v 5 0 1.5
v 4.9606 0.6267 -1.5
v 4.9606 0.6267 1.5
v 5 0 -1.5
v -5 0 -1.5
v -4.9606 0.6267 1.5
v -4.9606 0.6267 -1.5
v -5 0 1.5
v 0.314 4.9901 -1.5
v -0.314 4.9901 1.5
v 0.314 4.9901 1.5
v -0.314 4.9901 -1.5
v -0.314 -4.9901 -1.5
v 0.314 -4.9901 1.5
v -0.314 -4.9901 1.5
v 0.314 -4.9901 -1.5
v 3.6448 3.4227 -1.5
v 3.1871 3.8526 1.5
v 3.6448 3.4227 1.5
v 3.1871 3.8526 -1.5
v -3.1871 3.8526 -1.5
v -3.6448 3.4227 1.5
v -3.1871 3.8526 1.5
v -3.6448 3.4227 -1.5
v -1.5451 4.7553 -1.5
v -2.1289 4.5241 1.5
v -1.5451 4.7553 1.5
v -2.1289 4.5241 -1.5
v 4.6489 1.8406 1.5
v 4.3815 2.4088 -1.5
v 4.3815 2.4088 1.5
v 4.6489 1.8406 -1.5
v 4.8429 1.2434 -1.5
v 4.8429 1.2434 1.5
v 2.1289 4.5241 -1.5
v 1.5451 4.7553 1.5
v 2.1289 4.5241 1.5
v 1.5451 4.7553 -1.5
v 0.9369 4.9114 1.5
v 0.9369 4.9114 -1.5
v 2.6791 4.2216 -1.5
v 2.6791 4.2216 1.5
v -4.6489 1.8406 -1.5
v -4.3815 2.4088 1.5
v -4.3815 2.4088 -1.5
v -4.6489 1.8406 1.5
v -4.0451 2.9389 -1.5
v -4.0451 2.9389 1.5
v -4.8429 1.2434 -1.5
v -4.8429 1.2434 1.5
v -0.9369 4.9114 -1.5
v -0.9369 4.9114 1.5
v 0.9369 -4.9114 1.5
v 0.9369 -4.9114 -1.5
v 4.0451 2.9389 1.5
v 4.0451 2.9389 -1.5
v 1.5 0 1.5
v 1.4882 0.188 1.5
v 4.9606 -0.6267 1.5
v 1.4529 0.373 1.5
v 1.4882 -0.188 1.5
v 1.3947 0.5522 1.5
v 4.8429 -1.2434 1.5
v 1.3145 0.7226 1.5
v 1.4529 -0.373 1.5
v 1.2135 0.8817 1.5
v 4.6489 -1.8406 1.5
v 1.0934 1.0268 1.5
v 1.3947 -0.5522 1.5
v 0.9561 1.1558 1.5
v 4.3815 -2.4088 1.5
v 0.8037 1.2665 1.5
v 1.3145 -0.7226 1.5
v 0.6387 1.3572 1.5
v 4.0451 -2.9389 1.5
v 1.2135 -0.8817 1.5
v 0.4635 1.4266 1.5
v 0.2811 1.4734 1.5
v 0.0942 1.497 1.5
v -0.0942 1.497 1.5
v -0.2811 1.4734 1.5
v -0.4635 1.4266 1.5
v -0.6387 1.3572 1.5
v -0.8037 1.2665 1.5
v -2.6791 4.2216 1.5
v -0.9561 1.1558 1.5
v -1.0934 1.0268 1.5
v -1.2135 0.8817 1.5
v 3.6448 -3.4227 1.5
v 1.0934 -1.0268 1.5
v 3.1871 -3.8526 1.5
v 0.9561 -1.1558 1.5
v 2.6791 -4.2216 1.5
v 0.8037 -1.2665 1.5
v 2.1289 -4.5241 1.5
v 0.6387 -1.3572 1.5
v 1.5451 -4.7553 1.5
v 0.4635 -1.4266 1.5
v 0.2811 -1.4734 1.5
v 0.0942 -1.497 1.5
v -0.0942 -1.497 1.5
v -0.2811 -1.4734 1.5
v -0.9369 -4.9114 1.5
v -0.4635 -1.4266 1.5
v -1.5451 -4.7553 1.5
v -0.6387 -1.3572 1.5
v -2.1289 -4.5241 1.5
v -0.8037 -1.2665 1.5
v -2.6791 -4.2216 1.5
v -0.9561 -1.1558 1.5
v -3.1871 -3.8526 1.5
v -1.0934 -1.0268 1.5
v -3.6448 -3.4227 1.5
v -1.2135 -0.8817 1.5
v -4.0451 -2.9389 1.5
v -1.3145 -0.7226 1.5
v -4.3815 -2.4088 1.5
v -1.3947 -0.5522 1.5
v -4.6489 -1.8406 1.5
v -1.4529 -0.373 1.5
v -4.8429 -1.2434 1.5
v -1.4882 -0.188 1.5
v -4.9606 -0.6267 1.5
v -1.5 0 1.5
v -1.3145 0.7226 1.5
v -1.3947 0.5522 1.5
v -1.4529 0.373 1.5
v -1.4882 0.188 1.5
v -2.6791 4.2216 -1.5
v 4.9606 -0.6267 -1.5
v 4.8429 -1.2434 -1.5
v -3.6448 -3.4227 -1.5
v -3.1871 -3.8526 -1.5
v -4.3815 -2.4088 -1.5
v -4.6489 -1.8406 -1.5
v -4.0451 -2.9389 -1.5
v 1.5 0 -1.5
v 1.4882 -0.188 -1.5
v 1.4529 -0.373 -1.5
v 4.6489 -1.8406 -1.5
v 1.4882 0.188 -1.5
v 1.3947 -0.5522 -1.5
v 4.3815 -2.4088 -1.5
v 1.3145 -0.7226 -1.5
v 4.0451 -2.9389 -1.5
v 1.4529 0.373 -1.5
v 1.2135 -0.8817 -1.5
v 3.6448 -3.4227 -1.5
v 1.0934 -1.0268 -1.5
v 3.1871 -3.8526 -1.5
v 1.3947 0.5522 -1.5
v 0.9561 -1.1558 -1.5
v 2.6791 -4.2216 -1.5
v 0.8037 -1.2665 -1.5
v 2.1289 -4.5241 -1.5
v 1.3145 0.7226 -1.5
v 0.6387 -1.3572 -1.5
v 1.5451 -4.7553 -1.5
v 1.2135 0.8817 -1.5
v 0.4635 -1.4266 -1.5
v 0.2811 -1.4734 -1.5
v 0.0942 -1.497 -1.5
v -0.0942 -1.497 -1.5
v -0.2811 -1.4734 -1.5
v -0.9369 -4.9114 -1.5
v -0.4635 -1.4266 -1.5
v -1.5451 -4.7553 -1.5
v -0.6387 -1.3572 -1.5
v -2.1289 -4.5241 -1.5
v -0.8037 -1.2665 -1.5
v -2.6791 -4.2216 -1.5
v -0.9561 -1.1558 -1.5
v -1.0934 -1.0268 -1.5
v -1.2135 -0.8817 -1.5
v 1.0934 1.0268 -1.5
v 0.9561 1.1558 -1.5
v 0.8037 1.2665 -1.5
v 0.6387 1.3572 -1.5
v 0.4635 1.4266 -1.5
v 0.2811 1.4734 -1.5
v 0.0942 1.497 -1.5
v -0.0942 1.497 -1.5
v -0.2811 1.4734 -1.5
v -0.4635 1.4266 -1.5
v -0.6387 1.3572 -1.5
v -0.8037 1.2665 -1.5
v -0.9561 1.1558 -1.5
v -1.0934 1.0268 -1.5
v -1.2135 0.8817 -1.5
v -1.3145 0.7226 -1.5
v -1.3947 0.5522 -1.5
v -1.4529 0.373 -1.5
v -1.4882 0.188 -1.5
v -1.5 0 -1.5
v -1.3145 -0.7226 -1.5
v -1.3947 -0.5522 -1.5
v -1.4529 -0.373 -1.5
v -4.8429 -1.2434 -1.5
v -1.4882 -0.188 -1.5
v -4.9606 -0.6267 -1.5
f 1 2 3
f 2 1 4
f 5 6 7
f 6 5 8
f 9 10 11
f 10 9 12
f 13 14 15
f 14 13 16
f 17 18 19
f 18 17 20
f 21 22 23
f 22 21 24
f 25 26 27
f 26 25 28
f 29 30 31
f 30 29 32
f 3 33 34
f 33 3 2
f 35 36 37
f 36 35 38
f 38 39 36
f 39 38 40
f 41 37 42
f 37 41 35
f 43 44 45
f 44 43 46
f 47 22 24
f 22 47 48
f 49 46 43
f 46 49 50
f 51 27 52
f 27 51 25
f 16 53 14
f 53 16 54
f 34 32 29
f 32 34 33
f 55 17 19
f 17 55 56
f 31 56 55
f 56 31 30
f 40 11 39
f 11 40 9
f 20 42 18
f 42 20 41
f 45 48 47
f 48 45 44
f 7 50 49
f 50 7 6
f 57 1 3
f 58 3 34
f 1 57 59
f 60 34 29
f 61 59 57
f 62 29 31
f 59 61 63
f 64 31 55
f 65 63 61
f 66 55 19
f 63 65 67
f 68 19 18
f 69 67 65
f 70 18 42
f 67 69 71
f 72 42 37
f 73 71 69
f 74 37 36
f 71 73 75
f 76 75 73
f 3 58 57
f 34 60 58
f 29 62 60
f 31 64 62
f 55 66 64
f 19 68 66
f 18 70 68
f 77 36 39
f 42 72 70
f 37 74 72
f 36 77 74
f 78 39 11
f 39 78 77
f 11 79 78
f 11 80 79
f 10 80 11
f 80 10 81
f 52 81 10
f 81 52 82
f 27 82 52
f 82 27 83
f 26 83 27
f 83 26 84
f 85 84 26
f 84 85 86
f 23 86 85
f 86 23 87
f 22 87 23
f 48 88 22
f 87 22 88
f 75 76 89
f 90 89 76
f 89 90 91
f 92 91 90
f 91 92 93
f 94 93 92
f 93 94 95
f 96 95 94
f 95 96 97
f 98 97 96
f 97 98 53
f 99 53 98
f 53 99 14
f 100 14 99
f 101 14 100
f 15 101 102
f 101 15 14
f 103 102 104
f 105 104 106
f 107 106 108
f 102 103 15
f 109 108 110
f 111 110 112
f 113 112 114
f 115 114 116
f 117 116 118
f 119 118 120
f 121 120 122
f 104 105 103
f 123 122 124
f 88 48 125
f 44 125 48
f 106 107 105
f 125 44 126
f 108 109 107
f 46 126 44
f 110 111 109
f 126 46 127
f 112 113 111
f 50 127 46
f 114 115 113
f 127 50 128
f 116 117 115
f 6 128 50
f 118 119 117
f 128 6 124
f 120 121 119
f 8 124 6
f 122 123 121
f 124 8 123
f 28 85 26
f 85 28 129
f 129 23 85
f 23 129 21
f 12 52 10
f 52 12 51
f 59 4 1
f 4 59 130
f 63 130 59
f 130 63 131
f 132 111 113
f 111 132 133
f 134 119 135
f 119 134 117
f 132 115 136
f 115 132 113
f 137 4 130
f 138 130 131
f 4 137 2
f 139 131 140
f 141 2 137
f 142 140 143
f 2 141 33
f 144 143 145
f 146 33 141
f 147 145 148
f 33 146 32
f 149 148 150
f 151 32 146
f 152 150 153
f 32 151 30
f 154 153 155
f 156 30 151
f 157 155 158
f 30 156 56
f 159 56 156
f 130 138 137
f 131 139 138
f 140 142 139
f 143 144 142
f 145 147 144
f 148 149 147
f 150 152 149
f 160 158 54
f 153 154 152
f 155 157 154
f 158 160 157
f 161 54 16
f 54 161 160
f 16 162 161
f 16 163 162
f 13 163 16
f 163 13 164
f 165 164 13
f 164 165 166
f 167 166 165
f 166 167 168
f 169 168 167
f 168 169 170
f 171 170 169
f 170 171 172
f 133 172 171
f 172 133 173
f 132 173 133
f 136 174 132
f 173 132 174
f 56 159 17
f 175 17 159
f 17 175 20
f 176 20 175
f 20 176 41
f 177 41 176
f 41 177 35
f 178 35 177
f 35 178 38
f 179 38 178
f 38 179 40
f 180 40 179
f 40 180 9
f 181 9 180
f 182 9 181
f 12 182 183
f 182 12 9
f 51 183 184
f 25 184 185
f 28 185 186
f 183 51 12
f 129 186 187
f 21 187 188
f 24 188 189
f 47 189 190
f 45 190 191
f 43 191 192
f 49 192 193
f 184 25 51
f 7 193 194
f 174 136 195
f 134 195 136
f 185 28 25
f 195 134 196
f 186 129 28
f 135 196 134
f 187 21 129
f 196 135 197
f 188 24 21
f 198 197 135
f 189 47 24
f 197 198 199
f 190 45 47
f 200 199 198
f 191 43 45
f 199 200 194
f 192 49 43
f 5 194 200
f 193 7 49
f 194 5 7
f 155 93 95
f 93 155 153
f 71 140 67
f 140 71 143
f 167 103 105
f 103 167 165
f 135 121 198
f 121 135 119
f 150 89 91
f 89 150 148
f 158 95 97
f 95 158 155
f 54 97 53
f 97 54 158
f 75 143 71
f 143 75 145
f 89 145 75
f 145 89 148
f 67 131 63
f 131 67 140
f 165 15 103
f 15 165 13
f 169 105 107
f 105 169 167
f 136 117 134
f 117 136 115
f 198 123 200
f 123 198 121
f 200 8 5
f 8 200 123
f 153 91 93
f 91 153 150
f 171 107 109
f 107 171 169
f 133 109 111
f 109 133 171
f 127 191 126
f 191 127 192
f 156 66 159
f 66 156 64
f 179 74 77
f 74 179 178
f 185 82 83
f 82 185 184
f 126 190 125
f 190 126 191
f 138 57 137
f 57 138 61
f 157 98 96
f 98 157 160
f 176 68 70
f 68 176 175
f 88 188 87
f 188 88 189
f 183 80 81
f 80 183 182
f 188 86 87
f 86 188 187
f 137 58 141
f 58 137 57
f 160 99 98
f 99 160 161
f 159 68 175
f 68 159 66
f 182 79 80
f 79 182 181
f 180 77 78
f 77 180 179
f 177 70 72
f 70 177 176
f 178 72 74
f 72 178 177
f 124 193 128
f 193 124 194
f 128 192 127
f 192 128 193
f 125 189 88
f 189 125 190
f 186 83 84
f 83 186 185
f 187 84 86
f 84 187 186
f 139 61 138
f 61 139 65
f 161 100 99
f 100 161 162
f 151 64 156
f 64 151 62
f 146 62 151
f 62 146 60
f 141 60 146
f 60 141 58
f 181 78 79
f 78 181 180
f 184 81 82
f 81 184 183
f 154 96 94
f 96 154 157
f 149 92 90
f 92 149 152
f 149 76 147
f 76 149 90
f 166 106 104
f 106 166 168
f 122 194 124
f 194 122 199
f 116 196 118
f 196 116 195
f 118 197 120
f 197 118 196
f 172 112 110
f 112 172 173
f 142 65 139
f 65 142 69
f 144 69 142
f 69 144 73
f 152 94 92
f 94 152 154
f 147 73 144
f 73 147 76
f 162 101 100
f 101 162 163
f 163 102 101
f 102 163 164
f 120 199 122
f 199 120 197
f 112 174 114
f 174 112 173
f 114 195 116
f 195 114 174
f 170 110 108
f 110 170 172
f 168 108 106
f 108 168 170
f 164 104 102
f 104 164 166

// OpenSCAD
$fn = 50;


difference() {
	union() {
		translate(v = [0, 0, -1.5000000000]) {
			rotate(a = [0, 0, 0]) {
				cylinder(h = 3, r = 5.0000000000);
			}
		}
		translate(v = [0, 0, -1.5000000000]) {
			rotate(a = [0, 0, 0]) {
				cylinder(h = 3, r = 3.0000000000);
			}
		}
	}
	union() {
		translate(v = [0, 0, -125.0000000000]) {
			rotate(a = [0, 0, 0]) {
				cylinder(h = 250, r = 1.5000000000);
			}
		}
	}
}
